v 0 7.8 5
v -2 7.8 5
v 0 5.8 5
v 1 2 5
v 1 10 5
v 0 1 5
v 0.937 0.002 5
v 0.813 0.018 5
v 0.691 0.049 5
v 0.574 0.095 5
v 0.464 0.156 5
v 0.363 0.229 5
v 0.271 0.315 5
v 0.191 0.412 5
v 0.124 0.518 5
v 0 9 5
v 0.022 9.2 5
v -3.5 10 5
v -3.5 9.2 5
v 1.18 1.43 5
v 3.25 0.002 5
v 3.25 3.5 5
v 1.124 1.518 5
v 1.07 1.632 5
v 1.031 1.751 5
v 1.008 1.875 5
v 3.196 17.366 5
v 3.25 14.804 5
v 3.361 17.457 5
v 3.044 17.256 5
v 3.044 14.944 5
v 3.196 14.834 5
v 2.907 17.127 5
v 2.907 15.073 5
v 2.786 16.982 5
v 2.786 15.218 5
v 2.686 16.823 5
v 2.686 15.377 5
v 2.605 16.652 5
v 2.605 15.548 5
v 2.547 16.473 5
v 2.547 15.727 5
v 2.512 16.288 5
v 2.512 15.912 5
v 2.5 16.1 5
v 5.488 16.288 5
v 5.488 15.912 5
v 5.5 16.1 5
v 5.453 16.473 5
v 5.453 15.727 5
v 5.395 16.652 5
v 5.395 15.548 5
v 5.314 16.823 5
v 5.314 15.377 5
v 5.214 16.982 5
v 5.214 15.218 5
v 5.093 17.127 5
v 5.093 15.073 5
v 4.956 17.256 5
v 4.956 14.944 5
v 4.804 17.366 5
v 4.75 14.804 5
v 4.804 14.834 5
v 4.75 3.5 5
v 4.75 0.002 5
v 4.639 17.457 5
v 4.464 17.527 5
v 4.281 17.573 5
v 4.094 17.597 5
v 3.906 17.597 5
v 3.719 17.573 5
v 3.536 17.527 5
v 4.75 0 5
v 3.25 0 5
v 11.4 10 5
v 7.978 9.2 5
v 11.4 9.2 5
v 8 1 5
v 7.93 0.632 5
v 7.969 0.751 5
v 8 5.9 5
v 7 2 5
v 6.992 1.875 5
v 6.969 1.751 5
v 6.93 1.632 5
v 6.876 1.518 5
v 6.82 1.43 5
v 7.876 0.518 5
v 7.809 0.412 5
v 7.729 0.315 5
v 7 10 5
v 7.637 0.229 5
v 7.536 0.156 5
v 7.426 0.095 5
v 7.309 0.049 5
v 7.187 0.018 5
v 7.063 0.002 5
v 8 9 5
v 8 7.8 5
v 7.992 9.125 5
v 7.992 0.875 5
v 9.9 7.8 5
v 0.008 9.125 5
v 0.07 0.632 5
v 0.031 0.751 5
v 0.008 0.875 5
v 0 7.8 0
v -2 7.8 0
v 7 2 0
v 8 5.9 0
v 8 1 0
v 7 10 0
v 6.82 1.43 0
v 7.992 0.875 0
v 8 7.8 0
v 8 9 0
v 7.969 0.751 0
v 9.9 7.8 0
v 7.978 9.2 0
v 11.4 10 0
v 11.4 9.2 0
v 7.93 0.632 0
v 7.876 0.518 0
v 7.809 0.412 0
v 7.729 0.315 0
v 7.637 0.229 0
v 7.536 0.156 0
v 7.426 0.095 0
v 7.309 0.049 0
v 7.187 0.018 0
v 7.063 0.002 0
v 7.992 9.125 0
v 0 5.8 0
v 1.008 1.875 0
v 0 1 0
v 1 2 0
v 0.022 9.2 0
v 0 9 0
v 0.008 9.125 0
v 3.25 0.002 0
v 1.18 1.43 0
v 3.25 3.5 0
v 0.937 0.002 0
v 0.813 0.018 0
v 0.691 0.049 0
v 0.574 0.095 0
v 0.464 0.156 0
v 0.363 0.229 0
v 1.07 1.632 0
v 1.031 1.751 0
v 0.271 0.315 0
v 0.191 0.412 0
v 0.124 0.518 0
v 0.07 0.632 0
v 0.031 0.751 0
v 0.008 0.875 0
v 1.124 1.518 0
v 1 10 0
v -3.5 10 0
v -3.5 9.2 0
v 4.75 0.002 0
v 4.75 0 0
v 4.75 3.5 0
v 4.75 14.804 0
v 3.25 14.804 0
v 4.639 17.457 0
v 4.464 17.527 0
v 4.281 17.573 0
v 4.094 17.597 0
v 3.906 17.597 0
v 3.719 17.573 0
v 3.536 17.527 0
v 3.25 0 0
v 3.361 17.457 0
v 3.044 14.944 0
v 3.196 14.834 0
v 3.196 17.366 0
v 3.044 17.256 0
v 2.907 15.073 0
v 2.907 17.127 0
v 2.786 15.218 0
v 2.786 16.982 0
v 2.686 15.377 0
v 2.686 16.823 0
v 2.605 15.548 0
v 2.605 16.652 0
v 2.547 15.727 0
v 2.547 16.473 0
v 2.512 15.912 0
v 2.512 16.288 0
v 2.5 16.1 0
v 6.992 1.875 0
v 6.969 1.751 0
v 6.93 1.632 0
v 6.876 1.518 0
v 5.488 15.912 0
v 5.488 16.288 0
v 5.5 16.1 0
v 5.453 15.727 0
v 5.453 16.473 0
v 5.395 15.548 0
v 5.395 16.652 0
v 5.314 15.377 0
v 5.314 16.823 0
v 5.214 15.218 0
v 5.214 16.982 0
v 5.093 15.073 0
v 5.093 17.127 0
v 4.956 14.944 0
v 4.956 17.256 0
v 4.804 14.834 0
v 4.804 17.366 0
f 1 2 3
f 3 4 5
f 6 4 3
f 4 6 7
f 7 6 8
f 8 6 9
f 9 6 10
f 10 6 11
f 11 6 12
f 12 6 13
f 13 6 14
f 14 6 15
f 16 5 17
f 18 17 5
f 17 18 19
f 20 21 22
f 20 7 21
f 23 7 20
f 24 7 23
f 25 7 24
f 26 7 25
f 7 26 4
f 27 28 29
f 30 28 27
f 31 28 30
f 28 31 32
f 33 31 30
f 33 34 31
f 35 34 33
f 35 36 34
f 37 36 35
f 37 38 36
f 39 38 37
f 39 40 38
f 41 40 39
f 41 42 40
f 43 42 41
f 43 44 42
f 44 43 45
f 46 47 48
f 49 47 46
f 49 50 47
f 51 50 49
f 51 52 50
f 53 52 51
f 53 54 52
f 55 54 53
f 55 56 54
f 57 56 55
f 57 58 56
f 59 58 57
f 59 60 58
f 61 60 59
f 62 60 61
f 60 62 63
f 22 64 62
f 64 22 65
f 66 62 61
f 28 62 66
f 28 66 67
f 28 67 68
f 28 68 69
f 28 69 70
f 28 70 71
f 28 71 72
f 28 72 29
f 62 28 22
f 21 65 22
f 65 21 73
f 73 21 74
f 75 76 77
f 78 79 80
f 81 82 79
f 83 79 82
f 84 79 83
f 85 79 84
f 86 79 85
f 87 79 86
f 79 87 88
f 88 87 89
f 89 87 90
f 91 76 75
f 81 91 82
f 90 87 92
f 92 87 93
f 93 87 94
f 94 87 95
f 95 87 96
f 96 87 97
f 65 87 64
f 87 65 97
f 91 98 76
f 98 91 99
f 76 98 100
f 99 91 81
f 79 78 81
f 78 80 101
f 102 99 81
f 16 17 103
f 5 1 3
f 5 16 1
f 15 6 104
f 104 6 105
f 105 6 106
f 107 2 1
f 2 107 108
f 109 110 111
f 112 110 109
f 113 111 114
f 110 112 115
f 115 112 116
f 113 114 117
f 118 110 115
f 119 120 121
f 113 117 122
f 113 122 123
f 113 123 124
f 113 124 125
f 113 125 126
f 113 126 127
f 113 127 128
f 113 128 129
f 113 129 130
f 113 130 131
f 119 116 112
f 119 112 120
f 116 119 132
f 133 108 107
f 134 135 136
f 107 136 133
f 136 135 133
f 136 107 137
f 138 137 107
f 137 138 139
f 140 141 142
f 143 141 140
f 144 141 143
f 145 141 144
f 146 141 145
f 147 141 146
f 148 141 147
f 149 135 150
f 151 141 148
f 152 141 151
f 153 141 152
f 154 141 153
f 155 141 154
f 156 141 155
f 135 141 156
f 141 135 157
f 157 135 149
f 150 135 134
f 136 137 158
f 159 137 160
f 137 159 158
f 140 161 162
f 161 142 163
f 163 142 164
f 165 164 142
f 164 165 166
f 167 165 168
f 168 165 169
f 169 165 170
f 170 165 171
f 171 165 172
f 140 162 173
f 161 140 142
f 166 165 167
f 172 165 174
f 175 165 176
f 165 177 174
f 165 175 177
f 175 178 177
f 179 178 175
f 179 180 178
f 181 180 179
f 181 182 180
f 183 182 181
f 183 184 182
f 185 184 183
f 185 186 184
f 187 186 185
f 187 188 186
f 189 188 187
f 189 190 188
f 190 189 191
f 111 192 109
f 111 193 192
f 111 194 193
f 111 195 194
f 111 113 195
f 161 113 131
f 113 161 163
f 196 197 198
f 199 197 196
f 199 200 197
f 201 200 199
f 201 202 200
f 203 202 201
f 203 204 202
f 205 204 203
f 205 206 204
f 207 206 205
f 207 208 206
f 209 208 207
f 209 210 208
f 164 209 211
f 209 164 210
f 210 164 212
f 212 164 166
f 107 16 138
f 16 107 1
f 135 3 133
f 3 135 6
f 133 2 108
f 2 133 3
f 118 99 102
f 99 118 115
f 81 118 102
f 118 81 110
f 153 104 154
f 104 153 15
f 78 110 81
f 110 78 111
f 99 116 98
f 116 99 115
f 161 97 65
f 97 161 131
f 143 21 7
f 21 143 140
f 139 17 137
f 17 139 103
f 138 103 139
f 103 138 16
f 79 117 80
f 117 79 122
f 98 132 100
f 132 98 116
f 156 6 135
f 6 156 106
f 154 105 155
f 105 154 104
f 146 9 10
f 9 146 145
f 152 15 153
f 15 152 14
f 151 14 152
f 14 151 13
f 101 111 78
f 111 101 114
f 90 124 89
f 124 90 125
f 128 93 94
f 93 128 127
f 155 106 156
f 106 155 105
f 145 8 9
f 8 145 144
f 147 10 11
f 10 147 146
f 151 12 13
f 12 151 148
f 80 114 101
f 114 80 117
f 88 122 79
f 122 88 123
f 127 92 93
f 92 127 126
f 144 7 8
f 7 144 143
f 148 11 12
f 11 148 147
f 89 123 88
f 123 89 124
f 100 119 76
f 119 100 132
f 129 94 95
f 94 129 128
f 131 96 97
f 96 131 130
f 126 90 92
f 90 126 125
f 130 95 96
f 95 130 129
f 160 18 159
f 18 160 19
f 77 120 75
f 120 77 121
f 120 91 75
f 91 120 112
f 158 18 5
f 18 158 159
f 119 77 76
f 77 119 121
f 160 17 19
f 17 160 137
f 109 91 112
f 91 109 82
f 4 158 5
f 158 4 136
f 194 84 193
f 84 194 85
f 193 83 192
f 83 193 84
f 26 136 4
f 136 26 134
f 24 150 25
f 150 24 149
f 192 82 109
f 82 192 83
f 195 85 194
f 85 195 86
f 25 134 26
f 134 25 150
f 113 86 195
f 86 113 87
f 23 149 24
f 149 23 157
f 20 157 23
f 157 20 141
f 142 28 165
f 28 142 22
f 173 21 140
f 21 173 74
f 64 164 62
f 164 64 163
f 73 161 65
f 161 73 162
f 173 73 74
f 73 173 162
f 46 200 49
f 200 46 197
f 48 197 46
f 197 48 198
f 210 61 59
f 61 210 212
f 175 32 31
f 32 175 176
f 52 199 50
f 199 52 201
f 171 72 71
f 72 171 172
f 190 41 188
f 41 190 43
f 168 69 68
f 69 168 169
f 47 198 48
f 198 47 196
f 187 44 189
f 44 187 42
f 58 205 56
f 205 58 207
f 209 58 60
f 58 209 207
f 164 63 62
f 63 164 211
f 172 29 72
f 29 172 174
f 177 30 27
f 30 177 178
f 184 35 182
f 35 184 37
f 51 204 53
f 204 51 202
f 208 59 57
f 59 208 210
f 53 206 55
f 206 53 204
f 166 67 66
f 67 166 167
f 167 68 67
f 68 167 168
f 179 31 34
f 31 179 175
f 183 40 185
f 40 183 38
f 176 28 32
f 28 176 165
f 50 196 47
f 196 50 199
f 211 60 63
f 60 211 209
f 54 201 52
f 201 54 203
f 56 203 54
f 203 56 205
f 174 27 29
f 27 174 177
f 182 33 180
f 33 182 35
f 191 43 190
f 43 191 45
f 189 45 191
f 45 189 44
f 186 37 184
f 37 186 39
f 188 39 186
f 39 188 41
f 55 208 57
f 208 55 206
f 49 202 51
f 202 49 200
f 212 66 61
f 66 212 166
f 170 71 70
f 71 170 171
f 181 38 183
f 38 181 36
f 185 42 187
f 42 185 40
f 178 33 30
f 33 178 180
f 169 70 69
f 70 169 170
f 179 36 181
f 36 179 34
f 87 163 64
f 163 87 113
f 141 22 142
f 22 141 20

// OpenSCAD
// change if sits too loose inside of the case
height = 5;

click_stem();

module click_stem() {
    $fn=50;
    inner_depth = 10;
    inner_size = 8;
    stem_height = 6.5;
    cap_clip();
    stem_width = 1.5;
    circle_diameter = 3;
    translate([(inner_size - stem_width) / 2, 0, 0]) {
        cube([stem_width,inner_depth + stem_height - circle_diameter/2, height]);
        translate([stem_width/2, stem_height + circle_diameter*3.2, 0]) {
            linear_extrude(height) {
                circle(d = circle_diameter);
            }
        }
    }
    rect_size = 3;
    translate([(inner_size - stem_width ) / 2 - rect_size, 0.5, 0]) {
        #rectangular_triangle(rect_size, height);
    }
    translate([(inner_size + stem_width) / 2 , rect_size+0.5, 0]) {
        rotate([0,0,270]) {
            #rectangular_triangle(rect_size, height);
        }
    }
}

module cap_clip() {
    hook_depth = 1.4;
    widest_part = 14.9;
    holder_thickness = 0.8;
    inner_depth = 10;
    inner_size = 8;
    difference() {
        union() {
            roundedcube([inner_size,inner_depth,height], 1);
            translate([-3.5,inner_depth - holder_thickness,0]) {
                cube([widest_part,holder_thickness,height]);
            }
            rect_side = 2;
            y_top = inner_depth - rect_side - holder_thickness -hook_depth;
            // left bracket
            translate([0,y_top,0]) {
                rotate([0,0,90]) {
                    rectangular_triangle(rect_side, height);
                }
            }
            // right bracket
            translate([widest_part-5,y_top + rect_side,0]) {
                rotate([0,0,180]) {
                    rectangular_triangle(rect_side, height);
                }
            }
        }
        translate([1,1,0]) {
            roundedcube([inner_size-2,12,height+2], 1);
        }
    }
}

module rectangular_triangle(side_length = 1, height = 1) {
    difference() {
        cube([side_length,side_length,height]);
        rotate([0,0,45]) {
            cube([side_length*1.5,side_length,height]);
        }
    }
}

module roundedcube(size = [1,1,1], radius = 5) {
    radius = min(size[0]/2-0.01, size[1]/2-0.01, radius);
    minkowski() {
        diameter = radius * 2;
        cube([
            size[0] - diameter,
            size[1] - diameter,
            size[2]/2]);
        translate([radius,radius]) {
            cylinder(r=radius,h=size[2]/2);
        }
    }
}
